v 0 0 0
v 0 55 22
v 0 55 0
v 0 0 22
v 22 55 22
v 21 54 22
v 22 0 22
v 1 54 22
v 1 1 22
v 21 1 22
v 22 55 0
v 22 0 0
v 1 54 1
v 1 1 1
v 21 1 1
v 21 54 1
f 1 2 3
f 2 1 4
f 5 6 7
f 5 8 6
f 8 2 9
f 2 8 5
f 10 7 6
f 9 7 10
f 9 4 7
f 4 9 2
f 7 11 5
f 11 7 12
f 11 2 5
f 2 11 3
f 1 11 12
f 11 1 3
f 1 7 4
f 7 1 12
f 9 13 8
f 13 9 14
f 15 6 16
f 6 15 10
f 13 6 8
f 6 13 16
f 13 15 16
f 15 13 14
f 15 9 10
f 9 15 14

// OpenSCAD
module box(length, width, thickness){
    difference(){
        cube([length, width, thickness]);
        translate([1, 1, 1]){
            cube([length - 2, width - 2, thickness]);
        }
    }
}

module lid(length, width, thickness){
    difference(){
    box(length, width, thickness);
        translate([12,3,-.01]){
            mirror([1,0,0]){
                rotate([0,0,90]){
                    /*linear_extrude(height=.4){
                        text("S S S", size=15);
                    }*/
                }
            }
        }
    }
}


box(22, 55, 22);

translate([2.5,0,10]){
    rotate([90,0,0]){
        linear_extrude(height=.6){
            text("");
        }
    }
}

